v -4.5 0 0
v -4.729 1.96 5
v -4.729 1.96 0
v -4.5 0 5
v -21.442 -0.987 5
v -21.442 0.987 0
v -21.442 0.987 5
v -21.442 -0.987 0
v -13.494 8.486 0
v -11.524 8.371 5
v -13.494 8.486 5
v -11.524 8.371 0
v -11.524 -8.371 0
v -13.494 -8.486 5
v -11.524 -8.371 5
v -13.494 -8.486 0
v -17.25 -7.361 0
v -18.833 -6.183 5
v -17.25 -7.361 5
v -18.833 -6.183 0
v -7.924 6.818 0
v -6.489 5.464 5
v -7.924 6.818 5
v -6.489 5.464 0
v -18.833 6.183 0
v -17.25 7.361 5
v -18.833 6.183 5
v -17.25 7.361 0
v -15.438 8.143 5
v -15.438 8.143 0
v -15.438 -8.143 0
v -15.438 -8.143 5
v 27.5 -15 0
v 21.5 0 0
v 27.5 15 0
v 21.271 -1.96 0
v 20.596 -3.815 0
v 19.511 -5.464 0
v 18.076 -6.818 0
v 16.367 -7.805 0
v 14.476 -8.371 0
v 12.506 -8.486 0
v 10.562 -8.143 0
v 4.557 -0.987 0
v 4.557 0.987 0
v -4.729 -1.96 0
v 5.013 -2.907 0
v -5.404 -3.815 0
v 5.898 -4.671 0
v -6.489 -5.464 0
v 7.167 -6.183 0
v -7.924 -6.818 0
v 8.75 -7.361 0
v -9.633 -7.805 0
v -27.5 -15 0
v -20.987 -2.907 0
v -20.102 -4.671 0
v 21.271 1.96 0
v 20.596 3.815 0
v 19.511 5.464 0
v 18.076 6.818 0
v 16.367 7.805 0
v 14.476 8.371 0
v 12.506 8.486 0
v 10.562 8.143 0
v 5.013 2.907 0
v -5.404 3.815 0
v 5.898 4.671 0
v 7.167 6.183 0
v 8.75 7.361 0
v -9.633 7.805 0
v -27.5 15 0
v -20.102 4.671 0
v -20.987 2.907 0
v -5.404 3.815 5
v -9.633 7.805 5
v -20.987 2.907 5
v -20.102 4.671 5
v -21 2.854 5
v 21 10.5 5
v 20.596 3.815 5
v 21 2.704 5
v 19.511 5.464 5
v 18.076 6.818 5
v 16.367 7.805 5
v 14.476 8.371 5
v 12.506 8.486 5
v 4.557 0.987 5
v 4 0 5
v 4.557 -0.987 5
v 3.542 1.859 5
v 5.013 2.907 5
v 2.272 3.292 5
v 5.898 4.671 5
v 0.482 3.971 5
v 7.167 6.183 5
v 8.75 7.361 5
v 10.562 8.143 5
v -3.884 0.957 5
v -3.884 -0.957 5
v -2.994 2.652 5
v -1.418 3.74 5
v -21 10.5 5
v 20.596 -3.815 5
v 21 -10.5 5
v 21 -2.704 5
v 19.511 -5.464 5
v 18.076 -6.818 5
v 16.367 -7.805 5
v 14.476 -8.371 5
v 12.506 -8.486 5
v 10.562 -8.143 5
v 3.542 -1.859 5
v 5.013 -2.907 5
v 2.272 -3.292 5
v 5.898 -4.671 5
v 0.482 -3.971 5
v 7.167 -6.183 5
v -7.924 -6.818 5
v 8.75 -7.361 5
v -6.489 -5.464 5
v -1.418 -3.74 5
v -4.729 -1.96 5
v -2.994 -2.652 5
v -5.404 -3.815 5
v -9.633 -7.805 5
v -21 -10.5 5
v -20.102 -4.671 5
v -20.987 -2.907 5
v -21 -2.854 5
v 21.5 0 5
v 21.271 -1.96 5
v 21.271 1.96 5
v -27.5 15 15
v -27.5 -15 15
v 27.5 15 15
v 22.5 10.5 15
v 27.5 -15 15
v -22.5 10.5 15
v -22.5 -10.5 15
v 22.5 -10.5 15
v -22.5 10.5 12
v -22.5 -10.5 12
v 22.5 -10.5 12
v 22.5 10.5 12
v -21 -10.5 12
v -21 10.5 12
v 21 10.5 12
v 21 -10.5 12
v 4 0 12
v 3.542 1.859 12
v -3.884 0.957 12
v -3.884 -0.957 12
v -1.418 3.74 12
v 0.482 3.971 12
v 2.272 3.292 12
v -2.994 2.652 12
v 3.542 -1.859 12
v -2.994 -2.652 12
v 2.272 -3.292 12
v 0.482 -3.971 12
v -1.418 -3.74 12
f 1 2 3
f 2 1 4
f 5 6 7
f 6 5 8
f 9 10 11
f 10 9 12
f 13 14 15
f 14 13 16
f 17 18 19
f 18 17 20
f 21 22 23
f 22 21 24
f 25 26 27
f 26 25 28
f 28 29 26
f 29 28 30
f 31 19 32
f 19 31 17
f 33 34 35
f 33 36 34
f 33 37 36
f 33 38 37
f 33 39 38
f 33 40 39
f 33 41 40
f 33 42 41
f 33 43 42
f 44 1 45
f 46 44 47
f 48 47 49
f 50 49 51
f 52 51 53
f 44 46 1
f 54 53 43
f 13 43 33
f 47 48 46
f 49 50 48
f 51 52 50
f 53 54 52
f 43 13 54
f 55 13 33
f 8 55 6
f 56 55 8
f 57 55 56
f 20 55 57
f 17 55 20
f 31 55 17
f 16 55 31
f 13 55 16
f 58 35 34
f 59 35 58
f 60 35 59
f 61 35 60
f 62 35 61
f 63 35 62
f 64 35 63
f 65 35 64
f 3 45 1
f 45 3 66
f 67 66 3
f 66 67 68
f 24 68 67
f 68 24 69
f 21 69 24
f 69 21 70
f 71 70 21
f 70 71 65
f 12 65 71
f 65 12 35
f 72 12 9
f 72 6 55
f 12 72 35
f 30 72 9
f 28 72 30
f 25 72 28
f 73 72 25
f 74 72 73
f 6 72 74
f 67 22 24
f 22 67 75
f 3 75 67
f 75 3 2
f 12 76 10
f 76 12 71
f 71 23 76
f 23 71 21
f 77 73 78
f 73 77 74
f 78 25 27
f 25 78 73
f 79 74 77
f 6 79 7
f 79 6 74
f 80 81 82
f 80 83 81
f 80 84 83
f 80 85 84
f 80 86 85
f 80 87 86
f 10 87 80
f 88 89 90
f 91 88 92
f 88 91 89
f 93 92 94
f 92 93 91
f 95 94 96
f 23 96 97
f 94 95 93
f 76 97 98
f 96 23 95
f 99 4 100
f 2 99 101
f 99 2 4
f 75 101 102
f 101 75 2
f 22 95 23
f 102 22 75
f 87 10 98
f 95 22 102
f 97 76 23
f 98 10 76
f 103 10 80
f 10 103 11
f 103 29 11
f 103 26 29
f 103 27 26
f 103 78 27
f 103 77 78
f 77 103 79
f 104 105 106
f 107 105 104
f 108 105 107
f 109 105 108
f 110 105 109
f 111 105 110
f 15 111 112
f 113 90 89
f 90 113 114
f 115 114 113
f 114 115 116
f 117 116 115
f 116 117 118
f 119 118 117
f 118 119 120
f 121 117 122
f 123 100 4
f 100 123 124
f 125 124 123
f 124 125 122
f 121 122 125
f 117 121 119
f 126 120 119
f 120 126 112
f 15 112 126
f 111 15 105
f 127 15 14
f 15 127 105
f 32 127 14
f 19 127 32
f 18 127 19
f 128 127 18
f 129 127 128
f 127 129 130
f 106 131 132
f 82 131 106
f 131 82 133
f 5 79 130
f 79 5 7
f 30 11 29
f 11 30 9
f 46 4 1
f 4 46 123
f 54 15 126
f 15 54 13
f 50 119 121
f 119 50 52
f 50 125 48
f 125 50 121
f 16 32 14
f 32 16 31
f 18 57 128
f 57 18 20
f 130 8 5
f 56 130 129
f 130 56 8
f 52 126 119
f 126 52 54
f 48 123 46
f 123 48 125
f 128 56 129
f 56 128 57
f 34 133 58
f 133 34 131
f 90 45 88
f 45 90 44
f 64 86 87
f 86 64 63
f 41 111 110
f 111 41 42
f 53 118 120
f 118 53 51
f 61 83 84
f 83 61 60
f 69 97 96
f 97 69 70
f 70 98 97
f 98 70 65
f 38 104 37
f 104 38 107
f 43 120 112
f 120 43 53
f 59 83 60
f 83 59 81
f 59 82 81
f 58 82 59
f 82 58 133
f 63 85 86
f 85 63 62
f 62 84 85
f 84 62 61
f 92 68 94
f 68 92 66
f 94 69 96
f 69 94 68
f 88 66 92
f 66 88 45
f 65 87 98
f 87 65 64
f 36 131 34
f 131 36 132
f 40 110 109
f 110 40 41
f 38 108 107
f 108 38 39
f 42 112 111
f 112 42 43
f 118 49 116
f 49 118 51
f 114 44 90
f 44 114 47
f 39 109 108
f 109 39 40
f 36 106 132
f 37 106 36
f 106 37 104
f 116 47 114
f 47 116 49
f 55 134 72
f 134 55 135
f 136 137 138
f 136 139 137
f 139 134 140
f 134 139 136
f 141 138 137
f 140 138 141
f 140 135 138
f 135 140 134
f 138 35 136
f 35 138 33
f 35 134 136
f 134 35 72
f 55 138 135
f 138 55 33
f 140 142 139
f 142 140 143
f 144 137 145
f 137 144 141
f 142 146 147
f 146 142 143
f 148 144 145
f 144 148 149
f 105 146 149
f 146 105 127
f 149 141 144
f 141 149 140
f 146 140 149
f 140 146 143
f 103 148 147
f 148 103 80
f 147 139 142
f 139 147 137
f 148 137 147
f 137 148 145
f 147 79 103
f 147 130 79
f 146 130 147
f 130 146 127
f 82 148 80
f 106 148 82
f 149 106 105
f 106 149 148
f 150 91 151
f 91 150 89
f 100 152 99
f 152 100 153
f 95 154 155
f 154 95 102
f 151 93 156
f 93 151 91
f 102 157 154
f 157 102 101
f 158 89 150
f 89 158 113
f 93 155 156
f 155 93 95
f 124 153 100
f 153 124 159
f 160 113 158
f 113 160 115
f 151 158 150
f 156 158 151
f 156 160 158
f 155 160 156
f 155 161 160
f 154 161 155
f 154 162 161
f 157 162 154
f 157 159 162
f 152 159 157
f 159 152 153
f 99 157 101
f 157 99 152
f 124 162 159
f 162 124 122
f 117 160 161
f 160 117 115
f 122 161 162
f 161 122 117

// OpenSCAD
module main() {
	difference() {
		translate([0, 0, 15/2])
			cube([55, 30, 15], center = true);

		translate([0, 0, 15/2 + 5 + 7])
			cube([45, 21, 15], center = true);
		translate([0, 0, 7/2 + 5])
			cube([42, 21, 7], center = true);

		for(x = [-26/2, 26/2])
			translate([x, 0, 0])
				cylinder(d = 17, h = 5);
	}

	cylinder(d = 8, h = 12);
}
main();
